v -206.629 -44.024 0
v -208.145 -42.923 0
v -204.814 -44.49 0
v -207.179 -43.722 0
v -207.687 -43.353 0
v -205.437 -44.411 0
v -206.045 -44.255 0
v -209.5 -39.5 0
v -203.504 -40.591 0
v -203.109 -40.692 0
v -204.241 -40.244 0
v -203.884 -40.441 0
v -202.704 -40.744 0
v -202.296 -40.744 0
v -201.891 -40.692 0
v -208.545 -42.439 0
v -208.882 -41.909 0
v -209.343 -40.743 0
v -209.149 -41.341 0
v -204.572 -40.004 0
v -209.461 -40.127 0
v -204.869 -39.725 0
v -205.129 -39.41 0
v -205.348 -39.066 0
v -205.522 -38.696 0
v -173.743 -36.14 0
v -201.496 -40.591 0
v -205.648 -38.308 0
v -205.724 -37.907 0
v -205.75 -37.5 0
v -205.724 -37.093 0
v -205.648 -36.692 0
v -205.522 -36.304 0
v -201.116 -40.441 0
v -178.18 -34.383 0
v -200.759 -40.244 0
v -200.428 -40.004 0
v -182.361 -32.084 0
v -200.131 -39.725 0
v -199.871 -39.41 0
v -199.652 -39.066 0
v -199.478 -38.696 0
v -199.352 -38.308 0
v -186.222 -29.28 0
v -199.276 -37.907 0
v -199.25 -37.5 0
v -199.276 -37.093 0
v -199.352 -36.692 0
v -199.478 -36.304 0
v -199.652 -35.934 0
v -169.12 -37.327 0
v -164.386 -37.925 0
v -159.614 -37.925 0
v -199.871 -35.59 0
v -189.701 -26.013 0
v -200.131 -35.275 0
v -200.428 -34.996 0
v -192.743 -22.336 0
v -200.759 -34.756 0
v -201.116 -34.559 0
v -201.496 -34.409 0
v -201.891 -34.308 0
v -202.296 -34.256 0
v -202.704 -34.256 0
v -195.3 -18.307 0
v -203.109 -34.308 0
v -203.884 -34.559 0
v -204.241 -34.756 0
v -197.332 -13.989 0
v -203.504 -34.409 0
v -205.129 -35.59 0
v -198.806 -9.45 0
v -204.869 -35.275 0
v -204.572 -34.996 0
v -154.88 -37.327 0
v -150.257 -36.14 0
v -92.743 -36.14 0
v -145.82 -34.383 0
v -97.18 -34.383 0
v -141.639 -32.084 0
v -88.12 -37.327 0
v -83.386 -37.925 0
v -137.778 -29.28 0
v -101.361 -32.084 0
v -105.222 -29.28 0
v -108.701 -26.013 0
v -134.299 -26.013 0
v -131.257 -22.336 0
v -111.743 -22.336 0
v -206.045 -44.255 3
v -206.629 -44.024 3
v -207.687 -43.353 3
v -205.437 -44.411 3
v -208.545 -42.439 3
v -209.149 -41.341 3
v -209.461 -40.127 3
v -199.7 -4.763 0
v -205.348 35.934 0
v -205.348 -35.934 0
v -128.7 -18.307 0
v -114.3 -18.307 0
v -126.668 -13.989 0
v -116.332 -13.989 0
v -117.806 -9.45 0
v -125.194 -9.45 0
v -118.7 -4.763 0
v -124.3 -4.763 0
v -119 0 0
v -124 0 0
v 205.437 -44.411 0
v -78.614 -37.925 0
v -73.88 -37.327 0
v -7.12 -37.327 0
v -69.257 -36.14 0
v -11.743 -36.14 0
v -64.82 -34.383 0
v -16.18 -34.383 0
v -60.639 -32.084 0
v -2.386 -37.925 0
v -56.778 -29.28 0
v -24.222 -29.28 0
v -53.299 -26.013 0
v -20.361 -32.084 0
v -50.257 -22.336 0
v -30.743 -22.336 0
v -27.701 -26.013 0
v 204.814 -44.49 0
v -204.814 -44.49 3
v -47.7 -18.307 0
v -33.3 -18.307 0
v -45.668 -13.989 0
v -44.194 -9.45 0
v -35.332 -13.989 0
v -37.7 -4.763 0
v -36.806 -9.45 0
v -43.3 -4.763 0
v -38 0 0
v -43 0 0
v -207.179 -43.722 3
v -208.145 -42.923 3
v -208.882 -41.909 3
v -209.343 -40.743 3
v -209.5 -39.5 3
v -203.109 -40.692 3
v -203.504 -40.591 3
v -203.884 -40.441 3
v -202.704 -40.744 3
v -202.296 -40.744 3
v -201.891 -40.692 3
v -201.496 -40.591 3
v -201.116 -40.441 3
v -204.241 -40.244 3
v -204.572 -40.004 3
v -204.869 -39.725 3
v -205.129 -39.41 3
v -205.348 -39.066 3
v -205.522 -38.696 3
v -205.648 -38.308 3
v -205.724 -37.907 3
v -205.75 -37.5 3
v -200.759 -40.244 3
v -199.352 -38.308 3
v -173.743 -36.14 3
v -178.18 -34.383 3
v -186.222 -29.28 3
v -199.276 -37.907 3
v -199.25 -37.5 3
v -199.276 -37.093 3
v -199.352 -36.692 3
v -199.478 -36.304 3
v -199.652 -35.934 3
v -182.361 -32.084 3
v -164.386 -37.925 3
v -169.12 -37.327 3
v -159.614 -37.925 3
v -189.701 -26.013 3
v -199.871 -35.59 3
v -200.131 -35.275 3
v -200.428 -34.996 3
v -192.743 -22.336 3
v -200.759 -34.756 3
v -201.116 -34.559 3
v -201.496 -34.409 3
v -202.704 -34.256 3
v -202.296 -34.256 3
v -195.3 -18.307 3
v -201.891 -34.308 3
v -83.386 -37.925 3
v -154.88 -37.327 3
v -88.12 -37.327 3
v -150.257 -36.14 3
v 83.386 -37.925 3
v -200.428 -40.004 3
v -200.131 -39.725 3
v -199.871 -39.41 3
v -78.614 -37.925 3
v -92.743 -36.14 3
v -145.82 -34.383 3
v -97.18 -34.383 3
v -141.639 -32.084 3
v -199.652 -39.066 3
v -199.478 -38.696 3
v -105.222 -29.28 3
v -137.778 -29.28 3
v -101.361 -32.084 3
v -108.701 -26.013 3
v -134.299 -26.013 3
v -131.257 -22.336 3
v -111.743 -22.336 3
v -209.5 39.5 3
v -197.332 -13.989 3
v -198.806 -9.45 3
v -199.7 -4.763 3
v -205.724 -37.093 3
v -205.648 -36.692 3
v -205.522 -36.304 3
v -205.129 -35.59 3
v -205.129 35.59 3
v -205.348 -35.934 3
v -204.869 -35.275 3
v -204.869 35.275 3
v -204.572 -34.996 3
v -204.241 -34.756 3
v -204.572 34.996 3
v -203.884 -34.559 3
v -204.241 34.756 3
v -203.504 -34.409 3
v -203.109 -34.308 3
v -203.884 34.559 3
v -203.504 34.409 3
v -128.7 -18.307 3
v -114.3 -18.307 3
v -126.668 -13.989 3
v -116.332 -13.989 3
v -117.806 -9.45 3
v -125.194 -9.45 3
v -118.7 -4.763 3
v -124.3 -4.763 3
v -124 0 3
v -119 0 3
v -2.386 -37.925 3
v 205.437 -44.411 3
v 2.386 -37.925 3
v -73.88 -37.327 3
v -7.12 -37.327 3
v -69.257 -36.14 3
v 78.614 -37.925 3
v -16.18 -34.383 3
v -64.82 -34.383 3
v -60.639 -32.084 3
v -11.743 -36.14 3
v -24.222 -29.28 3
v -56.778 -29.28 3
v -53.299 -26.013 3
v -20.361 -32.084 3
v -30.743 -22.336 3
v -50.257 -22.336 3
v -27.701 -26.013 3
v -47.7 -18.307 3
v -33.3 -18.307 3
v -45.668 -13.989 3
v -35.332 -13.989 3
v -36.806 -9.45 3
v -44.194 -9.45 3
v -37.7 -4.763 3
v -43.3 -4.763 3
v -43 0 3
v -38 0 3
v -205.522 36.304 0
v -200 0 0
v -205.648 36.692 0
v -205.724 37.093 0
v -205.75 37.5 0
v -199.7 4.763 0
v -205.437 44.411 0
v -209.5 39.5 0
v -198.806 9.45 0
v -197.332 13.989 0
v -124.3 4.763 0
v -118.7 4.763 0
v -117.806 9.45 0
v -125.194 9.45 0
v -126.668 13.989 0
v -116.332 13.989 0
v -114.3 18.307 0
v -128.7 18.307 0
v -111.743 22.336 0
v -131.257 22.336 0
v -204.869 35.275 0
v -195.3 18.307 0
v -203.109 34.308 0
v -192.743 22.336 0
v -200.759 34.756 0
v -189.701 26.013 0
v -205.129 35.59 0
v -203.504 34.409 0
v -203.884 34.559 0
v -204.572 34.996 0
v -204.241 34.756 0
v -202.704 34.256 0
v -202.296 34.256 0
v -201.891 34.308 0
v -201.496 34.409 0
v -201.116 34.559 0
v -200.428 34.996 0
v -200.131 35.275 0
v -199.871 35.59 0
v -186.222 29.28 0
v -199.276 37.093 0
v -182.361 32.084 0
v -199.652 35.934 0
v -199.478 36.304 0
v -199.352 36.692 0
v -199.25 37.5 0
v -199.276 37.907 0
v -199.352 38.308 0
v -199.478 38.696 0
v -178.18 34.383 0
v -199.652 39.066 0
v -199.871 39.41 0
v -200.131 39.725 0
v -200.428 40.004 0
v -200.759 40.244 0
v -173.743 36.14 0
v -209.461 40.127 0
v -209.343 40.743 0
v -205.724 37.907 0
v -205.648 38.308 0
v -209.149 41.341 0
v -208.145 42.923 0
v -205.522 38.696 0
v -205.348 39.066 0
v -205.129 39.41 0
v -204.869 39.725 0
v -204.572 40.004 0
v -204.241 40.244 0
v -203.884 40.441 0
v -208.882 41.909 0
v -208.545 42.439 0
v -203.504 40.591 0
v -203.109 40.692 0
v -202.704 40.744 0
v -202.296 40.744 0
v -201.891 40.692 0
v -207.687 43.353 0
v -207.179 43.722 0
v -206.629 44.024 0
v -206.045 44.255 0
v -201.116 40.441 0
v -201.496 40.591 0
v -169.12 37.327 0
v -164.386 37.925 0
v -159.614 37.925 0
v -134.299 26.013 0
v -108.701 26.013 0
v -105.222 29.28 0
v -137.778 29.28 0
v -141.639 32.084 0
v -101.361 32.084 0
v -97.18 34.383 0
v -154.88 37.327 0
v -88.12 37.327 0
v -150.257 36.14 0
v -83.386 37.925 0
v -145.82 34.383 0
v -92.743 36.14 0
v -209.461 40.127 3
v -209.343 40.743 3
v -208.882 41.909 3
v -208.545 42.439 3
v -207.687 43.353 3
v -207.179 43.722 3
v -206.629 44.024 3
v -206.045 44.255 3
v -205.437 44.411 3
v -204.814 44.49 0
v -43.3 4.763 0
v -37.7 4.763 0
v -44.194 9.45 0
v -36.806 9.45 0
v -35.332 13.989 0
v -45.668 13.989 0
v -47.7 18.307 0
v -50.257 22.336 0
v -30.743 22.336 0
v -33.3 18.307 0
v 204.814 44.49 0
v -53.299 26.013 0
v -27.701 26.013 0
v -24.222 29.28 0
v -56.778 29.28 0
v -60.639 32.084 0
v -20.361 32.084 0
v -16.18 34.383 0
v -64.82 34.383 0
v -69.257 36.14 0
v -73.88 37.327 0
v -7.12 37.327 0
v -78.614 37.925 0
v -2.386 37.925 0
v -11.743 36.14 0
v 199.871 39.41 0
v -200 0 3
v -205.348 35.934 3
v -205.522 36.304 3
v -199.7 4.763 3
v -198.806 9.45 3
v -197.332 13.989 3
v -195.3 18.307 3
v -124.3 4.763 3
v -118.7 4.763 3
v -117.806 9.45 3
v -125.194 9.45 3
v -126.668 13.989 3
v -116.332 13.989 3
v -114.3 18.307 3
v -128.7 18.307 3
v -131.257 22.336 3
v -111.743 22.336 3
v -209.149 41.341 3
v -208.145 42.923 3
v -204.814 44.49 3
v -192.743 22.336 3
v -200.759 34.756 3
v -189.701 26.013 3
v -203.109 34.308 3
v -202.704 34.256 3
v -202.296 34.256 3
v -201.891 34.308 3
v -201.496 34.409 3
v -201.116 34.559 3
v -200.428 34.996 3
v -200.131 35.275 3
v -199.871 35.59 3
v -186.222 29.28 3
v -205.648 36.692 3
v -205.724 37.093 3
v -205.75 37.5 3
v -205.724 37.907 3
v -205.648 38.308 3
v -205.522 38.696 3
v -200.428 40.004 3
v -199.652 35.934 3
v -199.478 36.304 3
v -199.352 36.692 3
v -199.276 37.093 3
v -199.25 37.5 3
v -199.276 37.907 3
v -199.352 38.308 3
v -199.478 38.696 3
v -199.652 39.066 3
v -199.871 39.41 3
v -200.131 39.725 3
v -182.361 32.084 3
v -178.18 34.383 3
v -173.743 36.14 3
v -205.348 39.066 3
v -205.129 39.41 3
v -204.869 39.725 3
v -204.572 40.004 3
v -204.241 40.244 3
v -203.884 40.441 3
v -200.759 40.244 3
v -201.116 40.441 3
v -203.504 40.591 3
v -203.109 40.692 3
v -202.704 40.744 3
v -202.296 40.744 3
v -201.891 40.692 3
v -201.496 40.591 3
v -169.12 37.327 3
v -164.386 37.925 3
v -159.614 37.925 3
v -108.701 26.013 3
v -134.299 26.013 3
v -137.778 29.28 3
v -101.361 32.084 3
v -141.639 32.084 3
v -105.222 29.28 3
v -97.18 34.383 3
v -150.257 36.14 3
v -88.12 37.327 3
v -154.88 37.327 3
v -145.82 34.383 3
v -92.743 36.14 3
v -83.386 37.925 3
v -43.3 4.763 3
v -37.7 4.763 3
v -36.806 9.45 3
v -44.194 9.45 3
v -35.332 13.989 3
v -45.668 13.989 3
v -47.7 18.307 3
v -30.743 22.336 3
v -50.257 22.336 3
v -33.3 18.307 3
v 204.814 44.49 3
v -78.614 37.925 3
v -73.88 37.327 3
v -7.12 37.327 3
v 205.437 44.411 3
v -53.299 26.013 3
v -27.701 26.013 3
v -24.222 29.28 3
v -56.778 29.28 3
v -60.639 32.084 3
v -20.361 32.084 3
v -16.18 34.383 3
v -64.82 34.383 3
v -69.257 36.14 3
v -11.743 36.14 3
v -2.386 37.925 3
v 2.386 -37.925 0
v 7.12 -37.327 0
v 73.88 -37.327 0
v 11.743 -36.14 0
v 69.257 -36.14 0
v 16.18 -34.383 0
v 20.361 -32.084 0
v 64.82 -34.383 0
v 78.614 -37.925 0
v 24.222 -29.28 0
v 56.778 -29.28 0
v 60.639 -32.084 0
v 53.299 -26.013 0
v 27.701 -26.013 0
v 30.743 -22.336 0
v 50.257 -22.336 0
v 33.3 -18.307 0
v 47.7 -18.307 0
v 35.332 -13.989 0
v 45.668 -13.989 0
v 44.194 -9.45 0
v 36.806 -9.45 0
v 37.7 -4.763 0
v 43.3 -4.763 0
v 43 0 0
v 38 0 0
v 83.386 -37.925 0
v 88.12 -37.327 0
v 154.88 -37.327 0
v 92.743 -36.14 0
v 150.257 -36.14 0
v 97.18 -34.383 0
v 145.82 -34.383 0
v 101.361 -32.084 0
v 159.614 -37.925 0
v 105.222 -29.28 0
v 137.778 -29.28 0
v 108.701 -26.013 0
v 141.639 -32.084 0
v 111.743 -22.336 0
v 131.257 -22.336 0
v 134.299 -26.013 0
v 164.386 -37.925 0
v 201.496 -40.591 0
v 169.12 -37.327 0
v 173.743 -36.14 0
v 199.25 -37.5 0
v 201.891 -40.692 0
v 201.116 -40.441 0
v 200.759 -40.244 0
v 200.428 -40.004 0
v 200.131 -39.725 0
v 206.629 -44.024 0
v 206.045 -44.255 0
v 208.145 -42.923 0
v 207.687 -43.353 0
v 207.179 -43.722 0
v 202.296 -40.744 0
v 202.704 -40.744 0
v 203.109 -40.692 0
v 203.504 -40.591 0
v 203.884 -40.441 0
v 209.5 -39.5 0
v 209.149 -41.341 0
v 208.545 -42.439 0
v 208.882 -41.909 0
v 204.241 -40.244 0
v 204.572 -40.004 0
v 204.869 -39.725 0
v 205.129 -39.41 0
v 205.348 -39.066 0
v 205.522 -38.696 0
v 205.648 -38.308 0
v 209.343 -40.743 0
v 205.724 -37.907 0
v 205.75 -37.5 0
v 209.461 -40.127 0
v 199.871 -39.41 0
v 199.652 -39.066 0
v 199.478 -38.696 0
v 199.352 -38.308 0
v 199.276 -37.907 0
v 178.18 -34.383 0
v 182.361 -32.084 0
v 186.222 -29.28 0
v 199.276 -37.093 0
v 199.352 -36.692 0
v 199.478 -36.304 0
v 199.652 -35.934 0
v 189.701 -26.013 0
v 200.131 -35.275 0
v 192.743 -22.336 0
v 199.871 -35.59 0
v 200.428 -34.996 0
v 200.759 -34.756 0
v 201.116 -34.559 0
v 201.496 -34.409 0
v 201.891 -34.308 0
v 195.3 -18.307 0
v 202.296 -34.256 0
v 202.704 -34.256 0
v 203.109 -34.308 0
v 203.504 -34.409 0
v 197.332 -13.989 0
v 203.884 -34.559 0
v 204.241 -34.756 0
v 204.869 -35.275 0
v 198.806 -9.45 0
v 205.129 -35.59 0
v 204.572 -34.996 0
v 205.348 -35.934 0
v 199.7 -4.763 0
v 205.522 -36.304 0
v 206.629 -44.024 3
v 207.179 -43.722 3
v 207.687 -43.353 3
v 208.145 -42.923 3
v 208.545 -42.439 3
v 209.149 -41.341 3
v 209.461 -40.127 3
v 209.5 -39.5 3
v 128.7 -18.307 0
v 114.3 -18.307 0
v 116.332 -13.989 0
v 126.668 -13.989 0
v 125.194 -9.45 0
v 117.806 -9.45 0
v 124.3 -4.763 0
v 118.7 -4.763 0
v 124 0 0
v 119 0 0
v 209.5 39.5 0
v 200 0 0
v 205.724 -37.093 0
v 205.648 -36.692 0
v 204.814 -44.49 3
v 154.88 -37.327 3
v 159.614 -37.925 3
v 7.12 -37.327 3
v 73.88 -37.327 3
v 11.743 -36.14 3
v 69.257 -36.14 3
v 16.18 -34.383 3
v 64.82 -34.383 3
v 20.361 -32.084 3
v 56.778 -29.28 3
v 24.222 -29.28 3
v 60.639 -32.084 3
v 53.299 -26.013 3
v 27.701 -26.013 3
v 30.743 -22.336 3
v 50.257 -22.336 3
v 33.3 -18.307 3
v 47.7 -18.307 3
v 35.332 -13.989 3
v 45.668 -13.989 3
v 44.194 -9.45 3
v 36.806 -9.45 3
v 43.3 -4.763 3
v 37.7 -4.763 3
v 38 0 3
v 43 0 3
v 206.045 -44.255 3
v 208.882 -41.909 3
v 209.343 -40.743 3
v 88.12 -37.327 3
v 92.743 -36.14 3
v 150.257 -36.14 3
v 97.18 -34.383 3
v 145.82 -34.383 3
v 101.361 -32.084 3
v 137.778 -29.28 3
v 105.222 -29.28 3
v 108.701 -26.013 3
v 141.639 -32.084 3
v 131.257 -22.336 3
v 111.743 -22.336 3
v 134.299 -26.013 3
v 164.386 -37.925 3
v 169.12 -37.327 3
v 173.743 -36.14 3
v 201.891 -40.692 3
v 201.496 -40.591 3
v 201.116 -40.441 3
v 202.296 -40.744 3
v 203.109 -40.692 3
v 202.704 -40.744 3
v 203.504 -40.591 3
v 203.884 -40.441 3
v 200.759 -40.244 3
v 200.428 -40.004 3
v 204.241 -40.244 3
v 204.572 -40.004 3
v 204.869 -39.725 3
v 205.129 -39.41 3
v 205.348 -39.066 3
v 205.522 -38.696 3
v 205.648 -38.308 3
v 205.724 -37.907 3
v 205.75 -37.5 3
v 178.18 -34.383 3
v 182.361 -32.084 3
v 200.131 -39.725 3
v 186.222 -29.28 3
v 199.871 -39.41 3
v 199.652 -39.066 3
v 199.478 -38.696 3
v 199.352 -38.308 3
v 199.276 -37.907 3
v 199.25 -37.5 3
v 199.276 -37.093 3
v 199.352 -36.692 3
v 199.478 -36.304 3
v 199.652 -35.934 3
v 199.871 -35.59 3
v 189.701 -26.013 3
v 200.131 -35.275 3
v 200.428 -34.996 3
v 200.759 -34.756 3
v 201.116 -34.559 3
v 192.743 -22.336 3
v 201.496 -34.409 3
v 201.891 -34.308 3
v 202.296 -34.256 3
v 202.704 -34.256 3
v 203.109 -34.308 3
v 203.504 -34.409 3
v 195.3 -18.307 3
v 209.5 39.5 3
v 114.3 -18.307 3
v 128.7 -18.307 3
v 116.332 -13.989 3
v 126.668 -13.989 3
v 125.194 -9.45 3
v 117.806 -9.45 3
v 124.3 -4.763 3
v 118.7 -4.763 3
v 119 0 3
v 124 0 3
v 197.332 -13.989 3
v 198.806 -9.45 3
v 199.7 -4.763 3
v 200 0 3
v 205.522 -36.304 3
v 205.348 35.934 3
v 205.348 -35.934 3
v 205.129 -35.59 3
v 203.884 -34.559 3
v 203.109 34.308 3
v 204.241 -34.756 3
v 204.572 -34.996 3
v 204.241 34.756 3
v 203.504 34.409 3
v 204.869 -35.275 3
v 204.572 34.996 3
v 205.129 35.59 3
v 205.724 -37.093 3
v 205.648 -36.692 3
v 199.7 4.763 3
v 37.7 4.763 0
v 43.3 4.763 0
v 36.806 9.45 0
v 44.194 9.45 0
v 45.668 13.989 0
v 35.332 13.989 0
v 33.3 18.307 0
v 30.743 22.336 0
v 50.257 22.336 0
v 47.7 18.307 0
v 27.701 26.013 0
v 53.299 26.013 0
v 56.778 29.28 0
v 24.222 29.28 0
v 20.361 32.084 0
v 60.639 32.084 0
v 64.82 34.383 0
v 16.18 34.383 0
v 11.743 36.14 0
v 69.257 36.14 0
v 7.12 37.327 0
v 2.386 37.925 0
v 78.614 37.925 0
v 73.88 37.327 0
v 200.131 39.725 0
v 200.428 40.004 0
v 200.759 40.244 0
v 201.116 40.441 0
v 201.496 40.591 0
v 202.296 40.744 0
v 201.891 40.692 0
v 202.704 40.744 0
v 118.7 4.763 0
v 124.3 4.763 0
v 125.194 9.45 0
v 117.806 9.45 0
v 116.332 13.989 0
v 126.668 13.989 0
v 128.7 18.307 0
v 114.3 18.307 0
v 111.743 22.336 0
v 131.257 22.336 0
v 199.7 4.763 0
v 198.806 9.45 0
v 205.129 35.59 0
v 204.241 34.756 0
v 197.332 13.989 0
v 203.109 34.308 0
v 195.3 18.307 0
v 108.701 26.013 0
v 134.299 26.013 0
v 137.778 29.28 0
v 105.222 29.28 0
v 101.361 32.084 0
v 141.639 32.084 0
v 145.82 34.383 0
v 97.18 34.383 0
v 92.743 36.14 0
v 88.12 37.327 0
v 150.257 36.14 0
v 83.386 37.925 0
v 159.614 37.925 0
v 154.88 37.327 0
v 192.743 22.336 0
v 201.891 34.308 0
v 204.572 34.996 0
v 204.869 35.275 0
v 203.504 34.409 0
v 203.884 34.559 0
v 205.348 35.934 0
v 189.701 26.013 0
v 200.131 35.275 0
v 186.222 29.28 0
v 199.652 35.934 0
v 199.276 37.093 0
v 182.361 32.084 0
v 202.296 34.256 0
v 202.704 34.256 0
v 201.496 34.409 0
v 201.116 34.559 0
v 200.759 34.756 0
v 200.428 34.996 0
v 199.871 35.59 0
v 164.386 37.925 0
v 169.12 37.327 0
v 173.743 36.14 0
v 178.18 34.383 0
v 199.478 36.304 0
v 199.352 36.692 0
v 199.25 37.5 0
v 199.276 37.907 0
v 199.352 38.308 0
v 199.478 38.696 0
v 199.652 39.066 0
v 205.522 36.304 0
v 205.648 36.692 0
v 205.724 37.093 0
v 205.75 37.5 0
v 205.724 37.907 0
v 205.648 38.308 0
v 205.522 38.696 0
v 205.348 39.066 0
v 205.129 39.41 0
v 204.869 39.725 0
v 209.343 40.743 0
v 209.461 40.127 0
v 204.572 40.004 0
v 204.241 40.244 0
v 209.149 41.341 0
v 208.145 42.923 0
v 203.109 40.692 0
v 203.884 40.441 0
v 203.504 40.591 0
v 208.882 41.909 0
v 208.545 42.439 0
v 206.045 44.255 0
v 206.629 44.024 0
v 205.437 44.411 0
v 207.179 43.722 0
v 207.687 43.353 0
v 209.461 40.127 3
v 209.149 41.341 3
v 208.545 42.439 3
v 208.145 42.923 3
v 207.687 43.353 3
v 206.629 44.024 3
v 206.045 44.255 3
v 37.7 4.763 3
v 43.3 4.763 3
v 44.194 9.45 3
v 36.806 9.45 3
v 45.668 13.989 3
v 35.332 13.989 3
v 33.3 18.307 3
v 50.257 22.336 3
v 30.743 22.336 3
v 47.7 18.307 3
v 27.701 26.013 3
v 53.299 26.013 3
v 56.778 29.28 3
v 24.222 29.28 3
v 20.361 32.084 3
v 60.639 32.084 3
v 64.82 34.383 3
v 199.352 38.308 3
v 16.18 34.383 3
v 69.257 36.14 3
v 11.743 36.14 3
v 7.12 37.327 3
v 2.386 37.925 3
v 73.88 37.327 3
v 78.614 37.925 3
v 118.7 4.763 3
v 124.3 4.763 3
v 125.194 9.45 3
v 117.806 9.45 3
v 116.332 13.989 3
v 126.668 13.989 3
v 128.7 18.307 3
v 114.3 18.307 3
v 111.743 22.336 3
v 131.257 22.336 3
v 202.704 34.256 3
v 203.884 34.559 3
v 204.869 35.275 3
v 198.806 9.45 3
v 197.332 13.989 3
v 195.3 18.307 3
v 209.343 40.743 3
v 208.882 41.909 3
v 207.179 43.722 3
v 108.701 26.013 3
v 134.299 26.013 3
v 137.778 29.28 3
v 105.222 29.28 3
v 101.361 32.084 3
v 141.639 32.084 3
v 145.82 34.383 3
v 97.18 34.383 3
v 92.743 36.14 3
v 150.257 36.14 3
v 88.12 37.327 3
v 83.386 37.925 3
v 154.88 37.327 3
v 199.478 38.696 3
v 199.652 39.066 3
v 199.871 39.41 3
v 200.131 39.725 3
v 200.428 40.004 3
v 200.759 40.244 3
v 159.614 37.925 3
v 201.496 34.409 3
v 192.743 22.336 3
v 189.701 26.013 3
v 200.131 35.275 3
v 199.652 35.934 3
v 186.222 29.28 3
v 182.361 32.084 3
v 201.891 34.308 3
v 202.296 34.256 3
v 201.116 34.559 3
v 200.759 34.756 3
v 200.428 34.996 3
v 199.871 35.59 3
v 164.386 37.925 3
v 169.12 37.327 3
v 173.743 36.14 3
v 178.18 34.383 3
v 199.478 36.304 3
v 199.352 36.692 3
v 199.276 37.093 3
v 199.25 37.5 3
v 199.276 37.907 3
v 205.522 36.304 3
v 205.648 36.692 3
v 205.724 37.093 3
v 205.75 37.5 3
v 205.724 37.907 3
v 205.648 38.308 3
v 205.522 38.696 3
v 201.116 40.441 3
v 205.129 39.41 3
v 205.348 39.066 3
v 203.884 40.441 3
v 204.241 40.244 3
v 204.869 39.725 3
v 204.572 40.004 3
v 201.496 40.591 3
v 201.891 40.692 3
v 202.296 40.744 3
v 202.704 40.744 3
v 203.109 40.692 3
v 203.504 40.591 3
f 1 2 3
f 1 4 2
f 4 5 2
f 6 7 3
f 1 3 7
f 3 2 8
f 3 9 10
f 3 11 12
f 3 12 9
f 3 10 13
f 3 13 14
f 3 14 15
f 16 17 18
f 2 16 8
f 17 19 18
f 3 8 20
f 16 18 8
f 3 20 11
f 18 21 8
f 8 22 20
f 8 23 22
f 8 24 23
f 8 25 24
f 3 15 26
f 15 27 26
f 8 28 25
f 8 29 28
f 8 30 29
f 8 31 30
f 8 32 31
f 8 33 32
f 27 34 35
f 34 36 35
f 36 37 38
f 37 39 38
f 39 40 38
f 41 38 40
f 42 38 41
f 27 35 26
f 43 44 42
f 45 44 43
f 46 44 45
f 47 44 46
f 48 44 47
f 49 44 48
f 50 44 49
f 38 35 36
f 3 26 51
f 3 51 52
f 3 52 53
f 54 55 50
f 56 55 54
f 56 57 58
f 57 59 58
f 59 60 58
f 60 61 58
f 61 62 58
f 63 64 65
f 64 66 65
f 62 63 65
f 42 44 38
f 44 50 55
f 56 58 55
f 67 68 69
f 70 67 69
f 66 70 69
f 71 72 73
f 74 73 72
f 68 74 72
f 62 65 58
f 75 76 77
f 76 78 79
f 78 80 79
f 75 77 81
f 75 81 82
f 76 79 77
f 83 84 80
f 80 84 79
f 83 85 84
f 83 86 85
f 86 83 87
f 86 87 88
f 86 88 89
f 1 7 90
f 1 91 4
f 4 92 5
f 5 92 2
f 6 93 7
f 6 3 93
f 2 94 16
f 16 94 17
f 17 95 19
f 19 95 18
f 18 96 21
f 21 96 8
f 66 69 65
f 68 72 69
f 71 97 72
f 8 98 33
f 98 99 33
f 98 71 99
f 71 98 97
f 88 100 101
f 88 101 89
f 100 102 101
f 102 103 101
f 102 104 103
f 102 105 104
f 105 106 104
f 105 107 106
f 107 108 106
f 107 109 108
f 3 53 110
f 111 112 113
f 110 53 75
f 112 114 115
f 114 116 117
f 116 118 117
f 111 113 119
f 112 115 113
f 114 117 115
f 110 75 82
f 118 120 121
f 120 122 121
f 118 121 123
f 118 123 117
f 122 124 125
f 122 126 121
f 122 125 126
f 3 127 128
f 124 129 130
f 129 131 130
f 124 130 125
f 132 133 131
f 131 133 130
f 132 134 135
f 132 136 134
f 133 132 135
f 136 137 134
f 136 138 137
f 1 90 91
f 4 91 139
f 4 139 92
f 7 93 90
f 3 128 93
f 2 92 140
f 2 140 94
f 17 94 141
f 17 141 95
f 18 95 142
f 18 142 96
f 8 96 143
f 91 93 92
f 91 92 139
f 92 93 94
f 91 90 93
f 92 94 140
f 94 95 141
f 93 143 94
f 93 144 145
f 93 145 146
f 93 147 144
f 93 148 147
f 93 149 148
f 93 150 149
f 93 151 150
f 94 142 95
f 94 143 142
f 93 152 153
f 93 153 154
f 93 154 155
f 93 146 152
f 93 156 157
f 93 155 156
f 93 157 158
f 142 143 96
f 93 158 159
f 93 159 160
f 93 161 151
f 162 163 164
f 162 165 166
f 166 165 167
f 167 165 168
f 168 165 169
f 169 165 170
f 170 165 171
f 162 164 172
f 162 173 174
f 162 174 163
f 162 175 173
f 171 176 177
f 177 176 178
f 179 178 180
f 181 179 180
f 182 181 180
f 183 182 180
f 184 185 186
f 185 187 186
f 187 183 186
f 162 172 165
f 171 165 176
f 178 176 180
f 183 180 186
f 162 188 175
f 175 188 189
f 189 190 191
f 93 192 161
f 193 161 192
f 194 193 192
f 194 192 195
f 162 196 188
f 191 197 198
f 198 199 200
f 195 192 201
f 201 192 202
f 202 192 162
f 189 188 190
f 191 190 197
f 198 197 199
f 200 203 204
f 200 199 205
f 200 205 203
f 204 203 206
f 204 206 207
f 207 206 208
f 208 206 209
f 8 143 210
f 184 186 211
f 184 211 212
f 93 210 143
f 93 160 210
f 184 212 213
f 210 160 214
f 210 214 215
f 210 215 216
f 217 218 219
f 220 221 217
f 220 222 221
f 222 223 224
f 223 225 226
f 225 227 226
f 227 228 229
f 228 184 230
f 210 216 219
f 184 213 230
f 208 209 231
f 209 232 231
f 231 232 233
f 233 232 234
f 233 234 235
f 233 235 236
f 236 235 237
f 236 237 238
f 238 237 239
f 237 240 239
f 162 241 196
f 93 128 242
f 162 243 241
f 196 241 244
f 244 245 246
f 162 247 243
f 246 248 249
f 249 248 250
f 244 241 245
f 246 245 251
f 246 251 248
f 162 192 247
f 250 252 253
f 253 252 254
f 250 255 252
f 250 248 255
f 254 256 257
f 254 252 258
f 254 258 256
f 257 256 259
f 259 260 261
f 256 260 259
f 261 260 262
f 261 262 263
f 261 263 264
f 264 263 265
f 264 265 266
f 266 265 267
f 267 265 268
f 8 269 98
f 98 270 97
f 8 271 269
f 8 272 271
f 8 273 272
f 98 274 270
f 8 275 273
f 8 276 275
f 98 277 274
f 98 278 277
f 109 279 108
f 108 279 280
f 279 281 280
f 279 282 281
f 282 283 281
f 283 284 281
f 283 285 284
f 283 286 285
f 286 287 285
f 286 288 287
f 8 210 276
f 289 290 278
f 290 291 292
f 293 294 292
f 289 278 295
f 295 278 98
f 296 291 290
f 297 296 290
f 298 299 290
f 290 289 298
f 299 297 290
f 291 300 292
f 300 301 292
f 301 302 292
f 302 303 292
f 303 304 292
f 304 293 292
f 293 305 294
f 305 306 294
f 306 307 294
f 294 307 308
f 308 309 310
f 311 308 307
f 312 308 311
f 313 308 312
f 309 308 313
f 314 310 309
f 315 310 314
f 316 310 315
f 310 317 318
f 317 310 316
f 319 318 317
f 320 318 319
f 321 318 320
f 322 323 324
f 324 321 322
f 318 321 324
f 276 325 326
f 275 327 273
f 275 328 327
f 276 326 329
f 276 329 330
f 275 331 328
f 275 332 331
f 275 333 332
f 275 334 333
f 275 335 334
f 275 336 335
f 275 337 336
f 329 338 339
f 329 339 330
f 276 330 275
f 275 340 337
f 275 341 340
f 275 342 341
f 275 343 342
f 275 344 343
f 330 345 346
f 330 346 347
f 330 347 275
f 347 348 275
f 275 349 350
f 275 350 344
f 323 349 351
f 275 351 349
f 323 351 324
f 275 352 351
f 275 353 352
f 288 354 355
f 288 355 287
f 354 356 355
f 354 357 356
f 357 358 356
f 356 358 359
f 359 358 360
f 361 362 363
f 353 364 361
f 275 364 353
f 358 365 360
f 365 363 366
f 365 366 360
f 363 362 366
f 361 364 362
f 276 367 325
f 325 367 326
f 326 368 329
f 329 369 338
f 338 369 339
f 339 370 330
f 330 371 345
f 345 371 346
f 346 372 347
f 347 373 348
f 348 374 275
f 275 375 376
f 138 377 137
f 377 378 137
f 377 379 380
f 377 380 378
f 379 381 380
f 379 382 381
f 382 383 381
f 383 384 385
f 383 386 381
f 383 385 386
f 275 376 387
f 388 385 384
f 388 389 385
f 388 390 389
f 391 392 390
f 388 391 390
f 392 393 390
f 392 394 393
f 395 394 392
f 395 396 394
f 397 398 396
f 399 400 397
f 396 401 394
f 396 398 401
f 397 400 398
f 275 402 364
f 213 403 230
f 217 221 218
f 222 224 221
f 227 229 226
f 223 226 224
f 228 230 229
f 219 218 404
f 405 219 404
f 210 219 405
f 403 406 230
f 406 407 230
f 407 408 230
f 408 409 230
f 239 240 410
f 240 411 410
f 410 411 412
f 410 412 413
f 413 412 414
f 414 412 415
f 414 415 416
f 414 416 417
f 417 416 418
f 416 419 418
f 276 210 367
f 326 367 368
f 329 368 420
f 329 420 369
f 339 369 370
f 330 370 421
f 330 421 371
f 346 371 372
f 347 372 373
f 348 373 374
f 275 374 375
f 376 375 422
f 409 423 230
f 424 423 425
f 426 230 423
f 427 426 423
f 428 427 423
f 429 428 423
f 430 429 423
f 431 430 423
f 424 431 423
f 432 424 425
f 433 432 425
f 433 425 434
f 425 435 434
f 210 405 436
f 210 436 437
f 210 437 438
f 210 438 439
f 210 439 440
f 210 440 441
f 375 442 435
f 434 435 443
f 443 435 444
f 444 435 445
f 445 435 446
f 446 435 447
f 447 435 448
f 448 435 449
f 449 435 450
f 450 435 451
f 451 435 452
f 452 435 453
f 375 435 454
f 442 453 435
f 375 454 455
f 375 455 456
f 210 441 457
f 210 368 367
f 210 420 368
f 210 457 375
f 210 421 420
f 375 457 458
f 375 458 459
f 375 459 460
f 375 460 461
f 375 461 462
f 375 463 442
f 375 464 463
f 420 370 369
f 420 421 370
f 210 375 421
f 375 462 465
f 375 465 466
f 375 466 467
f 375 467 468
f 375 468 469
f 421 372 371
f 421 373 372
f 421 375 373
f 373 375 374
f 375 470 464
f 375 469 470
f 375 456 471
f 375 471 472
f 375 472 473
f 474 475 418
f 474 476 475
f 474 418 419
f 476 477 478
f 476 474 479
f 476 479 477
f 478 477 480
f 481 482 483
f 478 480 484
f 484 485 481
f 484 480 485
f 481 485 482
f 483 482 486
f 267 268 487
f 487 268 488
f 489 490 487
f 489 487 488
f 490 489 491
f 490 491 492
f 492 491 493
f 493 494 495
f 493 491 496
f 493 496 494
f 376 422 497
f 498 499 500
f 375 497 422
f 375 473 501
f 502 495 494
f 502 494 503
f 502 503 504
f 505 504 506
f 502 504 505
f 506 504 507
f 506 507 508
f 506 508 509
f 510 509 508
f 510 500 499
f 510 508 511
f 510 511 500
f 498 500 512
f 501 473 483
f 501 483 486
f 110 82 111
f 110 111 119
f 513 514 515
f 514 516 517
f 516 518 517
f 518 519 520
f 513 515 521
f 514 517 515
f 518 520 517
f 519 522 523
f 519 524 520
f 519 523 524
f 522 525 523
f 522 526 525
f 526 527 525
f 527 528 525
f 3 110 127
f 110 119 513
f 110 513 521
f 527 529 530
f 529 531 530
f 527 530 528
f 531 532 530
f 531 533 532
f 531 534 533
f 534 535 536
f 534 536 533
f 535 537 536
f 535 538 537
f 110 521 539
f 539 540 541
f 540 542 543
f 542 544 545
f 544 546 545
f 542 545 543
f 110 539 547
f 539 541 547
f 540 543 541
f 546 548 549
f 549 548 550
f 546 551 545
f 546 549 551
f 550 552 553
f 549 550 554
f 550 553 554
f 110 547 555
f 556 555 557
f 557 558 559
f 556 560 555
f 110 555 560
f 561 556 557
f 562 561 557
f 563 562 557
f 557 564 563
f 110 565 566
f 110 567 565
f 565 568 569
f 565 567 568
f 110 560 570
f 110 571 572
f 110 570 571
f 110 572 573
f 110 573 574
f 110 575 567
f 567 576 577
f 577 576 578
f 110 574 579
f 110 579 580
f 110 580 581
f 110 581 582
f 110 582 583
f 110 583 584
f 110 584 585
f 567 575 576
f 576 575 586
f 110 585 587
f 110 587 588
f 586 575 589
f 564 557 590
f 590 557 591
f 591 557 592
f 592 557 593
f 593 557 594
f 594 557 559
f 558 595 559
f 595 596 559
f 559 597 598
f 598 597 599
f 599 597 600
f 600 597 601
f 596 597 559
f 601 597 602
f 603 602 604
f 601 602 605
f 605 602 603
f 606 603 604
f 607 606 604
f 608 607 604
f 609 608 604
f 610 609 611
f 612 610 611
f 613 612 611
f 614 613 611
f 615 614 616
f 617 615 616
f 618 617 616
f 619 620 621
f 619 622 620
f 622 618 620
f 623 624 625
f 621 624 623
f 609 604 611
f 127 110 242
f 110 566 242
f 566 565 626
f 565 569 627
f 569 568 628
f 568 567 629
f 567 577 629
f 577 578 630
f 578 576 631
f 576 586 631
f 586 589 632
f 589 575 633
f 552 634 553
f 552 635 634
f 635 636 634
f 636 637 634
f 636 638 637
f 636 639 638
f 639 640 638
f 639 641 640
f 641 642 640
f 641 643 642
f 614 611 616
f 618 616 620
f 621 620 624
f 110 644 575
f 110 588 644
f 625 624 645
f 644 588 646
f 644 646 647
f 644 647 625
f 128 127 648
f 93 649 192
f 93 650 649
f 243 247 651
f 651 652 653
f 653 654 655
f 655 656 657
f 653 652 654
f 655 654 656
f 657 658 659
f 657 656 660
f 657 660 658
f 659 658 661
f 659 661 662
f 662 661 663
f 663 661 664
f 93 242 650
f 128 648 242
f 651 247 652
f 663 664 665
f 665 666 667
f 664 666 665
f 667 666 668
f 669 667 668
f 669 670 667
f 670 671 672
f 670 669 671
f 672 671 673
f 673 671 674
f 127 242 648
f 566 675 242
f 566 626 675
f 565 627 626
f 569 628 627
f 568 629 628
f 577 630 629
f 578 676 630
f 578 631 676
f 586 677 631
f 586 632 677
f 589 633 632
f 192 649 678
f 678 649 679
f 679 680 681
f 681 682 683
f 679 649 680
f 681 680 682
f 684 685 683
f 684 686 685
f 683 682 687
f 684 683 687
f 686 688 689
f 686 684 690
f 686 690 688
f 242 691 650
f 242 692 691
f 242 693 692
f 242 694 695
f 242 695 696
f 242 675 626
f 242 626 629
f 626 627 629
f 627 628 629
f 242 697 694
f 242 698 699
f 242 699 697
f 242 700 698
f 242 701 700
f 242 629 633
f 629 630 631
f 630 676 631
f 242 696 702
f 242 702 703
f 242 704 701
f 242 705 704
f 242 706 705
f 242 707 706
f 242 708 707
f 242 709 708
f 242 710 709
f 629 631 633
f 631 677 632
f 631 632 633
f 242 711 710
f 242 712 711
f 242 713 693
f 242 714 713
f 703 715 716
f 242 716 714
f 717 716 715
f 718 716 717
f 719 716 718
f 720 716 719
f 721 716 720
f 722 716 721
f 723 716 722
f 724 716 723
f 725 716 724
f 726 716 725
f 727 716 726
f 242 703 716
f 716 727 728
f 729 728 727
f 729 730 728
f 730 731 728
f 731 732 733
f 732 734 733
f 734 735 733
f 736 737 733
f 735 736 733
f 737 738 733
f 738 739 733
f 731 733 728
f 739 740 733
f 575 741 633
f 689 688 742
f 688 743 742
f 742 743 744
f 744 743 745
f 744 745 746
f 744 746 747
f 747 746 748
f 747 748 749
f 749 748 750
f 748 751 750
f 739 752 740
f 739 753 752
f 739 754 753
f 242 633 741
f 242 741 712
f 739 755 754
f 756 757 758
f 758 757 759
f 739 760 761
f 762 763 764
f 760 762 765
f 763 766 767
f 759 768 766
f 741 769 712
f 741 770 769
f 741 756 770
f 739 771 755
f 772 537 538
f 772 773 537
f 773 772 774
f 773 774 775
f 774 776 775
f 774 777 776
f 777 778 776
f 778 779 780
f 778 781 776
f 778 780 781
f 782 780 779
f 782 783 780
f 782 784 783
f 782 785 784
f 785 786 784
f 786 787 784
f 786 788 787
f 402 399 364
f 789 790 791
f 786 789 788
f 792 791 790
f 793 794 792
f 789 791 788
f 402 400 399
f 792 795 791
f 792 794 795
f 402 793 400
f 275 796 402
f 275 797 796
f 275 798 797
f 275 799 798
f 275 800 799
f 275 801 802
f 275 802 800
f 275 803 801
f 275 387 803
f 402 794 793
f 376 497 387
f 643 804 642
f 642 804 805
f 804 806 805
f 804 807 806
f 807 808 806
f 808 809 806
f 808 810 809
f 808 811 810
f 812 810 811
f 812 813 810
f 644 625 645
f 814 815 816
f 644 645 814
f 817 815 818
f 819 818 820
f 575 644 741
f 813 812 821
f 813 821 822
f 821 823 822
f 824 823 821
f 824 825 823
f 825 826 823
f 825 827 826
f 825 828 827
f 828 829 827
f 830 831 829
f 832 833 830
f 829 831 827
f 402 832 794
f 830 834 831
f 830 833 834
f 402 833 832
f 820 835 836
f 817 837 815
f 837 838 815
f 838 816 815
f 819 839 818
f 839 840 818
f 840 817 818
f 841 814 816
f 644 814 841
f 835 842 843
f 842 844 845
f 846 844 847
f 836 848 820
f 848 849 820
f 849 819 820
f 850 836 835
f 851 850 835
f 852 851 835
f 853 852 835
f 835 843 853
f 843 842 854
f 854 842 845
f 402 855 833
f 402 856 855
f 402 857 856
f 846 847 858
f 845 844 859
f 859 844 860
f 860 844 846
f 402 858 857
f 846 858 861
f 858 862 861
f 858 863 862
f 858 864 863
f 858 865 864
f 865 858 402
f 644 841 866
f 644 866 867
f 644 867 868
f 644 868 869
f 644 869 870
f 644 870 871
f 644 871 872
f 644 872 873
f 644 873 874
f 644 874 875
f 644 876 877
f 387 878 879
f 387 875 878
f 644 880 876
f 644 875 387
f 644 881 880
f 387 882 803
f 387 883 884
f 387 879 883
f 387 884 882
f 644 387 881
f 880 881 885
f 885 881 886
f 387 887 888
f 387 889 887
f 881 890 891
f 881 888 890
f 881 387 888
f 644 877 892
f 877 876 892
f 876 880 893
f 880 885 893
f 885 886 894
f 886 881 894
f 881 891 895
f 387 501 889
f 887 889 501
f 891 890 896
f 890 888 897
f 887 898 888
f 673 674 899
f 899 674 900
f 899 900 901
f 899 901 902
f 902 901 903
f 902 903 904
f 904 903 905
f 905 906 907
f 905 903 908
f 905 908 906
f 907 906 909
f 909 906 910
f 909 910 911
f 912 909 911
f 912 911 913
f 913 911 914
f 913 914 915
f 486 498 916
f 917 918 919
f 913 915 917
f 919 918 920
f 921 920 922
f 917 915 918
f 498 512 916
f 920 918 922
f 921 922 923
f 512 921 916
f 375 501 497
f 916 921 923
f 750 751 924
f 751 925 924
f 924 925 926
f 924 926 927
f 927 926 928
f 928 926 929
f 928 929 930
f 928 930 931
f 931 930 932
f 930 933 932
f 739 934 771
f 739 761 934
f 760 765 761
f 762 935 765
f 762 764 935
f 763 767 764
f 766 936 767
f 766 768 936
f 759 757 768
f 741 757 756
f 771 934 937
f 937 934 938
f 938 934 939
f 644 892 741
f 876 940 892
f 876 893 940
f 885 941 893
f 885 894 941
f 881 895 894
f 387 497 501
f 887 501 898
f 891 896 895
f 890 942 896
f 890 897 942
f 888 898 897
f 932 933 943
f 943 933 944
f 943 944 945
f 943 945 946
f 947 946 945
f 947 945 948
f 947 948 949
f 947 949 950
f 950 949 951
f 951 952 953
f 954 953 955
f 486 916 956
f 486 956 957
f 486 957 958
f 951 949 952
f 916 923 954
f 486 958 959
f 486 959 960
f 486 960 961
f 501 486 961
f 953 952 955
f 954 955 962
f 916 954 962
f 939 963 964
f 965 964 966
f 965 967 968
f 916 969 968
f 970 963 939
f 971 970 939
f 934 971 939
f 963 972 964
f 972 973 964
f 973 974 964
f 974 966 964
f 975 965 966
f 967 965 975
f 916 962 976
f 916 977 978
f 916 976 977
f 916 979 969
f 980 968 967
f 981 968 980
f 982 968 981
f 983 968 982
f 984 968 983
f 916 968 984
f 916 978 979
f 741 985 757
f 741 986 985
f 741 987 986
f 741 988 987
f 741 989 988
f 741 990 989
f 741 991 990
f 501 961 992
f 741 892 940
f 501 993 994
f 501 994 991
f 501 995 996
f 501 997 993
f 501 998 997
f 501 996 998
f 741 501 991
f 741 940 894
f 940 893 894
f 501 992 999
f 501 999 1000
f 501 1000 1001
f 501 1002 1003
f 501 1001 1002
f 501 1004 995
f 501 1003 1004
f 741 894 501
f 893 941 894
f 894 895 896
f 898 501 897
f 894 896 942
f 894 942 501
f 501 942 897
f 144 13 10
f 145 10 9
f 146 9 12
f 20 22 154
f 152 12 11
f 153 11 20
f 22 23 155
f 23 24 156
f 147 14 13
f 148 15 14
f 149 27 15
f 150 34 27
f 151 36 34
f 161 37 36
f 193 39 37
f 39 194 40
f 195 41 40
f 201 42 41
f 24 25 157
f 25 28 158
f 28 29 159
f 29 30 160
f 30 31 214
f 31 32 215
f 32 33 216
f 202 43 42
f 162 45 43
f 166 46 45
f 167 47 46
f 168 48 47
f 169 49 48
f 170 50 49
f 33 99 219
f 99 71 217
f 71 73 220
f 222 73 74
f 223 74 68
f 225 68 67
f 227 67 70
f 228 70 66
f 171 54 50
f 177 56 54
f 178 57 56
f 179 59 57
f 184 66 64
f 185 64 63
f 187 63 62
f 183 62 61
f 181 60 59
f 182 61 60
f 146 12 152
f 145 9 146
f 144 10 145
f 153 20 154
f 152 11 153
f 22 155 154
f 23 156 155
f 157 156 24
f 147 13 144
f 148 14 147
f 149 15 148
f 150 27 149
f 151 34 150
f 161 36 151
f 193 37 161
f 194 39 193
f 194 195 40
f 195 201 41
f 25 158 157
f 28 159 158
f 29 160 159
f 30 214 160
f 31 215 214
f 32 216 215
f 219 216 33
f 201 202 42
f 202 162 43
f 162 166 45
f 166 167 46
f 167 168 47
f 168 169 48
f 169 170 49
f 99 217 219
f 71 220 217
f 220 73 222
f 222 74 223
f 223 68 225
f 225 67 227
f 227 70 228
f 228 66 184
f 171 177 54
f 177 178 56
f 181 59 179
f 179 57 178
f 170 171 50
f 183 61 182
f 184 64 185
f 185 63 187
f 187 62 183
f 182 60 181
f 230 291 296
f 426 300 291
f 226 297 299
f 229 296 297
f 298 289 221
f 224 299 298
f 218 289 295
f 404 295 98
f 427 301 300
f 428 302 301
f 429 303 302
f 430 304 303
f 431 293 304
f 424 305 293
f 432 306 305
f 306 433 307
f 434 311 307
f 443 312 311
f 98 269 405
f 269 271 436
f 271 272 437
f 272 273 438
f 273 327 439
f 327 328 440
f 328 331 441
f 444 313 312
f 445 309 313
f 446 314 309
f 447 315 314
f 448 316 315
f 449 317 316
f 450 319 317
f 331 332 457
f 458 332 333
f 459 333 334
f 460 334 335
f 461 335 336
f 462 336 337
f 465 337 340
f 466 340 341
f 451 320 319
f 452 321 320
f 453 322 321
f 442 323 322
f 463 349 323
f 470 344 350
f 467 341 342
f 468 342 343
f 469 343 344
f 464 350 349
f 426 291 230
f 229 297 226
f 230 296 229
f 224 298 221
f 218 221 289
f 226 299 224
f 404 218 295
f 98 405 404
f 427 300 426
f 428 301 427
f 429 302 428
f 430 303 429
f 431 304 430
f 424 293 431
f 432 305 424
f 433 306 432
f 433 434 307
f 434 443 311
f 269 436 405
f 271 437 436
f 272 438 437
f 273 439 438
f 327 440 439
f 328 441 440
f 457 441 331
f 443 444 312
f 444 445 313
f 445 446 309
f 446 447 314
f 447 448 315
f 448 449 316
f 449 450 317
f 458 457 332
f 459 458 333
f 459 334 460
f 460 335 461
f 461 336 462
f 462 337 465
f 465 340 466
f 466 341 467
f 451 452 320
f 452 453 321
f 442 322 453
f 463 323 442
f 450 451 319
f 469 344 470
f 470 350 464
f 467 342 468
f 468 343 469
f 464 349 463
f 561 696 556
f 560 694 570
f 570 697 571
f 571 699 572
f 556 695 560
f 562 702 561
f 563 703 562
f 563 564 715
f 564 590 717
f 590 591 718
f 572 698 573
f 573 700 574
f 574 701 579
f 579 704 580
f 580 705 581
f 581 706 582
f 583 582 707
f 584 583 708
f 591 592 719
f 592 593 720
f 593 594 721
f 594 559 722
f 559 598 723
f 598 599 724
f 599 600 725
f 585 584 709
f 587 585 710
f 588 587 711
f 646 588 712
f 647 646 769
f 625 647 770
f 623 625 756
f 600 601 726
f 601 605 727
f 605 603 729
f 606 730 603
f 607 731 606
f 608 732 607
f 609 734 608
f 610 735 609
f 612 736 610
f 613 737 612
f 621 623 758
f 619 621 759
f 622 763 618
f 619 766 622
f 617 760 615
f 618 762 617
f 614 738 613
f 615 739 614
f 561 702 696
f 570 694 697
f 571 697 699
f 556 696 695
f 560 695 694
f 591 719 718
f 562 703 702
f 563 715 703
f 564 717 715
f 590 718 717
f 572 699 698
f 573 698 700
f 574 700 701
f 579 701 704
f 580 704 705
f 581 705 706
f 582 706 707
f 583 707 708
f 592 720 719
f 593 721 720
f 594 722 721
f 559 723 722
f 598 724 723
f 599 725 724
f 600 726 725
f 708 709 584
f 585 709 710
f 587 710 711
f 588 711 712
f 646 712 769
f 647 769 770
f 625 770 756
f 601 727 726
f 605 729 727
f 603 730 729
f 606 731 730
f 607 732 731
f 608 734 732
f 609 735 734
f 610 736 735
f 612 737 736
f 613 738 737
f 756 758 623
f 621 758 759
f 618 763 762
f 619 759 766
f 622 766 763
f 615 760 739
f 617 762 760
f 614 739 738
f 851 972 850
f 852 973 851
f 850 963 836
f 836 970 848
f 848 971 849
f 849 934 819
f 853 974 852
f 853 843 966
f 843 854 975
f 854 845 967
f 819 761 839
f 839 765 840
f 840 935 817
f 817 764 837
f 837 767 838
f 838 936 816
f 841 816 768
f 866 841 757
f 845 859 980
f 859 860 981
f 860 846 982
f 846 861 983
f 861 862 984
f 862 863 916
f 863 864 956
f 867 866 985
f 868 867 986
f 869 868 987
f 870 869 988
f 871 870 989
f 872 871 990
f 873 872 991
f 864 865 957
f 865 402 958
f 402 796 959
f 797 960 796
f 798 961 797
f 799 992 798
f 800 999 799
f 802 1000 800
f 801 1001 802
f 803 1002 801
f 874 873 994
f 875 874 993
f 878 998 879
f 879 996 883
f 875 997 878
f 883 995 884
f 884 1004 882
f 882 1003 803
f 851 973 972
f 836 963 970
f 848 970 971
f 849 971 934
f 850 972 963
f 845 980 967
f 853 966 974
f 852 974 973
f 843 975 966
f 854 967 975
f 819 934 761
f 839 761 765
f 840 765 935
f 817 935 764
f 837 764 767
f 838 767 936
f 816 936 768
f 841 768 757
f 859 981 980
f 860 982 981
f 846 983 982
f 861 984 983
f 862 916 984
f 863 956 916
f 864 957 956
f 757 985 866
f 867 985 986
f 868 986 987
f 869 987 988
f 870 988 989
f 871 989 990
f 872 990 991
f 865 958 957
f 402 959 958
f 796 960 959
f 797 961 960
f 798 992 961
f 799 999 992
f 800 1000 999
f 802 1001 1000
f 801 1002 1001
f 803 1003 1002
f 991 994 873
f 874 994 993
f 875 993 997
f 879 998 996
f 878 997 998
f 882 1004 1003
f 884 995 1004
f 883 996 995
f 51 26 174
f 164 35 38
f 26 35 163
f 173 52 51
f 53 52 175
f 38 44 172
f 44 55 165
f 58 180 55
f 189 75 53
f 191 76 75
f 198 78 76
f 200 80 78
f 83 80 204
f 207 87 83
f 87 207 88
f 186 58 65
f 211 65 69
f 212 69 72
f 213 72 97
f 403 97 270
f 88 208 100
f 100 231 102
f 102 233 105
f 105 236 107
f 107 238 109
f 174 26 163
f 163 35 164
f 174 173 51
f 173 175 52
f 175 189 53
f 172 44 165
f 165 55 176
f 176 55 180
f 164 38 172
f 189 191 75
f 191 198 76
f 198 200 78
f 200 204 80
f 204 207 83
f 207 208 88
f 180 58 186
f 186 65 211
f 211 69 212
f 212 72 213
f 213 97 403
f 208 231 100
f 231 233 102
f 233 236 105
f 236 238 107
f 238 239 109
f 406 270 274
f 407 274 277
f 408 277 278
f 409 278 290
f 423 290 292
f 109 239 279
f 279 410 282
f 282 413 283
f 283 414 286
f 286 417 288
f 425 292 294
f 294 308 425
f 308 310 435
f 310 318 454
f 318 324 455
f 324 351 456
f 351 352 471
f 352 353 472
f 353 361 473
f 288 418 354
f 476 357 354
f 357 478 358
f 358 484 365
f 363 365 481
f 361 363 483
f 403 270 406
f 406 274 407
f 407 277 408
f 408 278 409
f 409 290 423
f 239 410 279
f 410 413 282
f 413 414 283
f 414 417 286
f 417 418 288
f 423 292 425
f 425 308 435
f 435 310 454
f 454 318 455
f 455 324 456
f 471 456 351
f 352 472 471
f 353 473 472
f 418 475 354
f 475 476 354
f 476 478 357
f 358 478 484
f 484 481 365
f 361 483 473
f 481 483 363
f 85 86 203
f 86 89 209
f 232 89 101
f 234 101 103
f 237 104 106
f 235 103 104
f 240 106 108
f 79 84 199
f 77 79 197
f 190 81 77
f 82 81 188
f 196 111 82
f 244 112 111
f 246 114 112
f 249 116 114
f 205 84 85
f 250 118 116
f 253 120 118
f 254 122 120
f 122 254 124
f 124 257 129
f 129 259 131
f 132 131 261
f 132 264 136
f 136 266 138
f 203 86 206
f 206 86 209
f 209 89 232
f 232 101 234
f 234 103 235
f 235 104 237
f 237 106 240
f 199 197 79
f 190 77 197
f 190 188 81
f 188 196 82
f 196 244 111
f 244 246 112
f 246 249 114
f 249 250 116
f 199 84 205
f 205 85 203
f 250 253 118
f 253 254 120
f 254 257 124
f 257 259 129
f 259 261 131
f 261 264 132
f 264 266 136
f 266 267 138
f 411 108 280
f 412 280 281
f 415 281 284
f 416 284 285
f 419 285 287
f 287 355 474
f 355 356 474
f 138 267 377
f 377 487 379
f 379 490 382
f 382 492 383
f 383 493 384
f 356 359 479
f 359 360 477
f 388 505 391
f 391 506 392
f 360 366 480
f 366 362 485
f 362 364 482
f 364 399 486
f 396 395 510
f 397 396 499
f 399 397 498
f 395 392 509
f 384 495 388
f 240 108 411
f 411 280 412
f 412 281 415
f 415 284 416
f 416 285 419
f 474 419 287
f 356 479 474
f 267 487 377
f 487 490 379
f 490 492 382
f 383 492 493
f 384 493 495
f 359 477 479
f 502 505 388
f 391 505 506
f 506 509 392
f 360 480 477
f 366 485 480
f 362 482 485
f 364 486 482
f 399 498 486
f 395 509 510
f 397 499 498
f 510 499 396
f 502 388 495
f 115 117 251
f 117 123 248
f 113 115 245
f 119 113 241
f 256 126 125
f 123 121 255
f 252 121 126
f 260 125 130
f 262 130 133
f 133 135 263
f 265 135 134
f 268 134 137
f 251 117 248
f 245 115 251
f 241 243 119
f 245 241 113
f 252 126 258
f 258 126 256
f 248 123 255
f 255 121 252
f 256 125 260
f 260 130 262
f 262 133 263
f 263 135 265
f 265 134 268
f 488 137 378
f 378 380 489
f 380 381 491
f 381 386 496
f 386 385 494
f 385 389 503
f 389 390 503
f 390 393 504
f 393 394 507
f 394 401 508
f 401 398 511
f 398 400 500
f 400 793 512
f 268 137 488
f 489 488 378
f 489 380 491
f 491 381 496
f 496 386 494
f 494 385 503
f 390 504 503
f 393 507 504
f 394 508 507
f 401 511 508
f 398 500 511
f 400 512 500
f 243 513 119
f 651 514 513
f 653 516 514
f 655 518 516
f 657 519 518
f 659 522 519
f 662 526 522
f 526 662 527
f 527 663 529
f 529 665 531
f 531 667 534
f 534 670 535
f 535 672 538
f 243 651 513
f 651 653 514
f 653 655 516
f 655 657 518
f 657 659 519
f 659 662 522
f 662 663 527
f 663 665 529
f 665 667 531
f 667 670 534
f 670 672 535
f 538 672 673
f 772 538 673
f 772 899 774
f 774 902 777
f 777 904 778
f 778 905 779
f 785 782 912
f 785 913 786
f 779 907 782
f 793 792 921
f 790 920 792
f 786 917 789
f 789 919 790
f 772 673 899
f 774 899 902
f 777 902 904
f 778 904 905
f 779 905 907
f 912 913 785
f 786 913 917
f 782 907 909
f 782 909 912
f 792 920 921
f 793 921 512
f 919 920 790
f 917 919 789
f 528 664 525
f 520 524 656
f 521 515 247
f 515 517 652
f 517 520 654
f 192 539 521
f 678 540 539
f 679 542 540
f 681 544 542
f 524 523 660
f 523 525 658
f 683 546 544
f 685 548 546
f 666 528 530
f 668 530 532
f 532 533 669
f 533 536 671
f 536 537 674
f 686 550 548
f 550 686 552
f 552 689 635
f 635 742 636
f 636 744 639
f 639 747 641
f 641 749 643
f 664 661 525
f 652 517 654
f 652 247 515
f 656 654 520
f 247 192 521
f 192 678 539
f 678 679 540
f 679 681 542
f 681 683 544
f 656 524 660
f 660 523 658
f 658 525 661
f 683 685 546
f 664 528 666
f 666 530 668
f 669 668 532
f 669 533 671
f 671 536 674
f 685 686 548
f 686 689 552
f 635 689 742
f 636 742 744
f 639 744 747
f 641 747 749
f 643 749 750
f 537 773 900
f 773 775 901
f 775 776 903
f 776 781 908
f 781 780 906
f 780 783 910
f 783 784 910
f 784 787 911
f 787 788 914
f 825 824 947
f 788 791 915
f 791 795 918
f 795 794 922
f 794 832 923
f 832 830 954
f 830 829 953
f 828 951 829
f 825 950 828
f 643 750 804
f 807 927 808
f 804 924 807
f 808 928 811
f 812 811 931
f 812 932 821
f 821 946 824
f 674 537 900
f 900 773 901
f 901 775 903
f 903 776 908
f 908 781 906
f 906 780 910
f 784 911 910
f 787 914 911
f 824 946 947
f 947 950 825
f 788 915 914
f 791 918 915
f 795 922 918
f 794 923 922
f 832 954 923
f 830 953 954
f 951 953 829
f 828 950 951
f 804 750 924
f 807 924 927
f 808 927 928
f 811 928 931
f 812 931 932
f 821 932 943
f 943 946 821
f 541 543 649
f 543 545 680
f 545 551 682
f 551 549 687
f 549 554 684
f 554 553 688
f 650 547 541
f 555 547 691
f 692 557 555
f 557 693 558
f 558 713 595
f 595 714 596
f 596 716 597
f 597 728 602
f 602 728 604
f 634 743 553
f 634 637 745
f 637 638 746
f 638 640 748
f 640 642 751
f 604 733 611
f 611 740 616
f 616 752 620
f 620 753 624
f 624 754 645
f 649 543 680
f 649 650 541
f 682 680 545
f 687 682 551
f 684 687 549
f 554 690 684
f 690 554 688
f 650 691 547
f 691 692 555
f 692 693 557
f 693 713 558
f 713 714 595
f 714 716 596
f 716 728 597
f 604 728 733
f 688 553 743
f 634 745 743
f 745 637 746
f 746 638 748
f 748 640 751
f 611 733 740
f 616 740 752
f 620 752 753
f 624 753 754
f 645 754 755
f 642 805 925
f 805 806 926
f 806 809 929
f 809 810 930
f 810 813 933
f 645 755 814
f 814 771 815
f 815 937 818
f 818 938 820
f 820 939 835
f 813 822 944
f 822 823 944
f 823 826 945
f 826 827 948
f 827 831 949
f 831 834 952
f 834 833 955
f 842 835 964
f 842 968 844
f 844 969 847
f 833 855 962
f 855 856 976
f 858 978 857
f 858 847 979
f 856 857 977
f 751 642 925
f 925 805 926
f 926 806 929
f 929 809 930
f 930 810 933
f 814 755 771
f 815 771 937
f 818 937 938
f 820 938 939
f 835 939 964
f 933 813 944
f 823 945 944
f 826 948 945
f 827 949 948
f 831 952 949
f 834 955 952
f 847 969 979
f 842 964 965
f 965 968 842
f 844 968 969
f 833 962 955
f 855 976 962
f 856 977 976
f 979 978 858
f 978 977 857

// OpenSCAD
$fn = 50;

difference() {
	union() {
		hull() {
			translate(v = [-204.5, 39.5, 0]) {
				cylinder(h = 3, r = 5);
			}
			translate(v = [204.5, 39.5, 0]) {
				cylinder(h = 3, r = 5);
			}
			translate(v = [-204.5, -39.5, 0]) {
				cylinder(h = 3, r = 5);
			}
			translate(v = [204.5, -39.5, 0]) {
				cylinder(h = 3, r = 5);
			}
		}
	}
	union() {
		translate(v = [-202.5, -37.5, -100.0]) {
			cylinder(h = 200, r = 3.25);
		}
		translate(v = [-202.5, 37.5, -100.0]) {
			cylinder(h = 200, r = 3.25);
		}
		translate(v = [202.5, -37.5, -100.0]) {
			cylinder(h = 200, r = 3.25);
		}
		translate(v = [202.5, 37.5, -100.0]) {
			cylinder(h = 200, r = 3.25);
		}
		translate(v = [-202.5, -37.5, -100.0]) {
			cylinder(h = 200, r = 1.8);
		}
		translate(v = [-202.5, 37.5, -100.0]) {
			cylinder(h = 200, r = 1.8);
		}
		translate(v = [202.5, -37.5, -100.0]) {
			cylinder(h = 200, r = 1.8);
		}
		translate(v = [202.5, 37.5, -100.0]) {
			cylinder(h = 200, r = 1.8);
		}
		translate(v = [-162.0, 0, 0.0]) {
			cylinder(h = 3, r = 38.0);
		}
		translate(v = [-81.0, 0, 0.0]) {
			cylinder(h = 3, r = 38.0);
		}
		cylinder(h = 3, r = 38.0);
		translate(v = [81.0, 0, 0.0]) {
			cylinder(h = 3, r = 38.0);
		}
		translate(v = [162.0, 0, 0.0]) {
			cylinder(h = 3, r = 38.0);
		}
	}
}
